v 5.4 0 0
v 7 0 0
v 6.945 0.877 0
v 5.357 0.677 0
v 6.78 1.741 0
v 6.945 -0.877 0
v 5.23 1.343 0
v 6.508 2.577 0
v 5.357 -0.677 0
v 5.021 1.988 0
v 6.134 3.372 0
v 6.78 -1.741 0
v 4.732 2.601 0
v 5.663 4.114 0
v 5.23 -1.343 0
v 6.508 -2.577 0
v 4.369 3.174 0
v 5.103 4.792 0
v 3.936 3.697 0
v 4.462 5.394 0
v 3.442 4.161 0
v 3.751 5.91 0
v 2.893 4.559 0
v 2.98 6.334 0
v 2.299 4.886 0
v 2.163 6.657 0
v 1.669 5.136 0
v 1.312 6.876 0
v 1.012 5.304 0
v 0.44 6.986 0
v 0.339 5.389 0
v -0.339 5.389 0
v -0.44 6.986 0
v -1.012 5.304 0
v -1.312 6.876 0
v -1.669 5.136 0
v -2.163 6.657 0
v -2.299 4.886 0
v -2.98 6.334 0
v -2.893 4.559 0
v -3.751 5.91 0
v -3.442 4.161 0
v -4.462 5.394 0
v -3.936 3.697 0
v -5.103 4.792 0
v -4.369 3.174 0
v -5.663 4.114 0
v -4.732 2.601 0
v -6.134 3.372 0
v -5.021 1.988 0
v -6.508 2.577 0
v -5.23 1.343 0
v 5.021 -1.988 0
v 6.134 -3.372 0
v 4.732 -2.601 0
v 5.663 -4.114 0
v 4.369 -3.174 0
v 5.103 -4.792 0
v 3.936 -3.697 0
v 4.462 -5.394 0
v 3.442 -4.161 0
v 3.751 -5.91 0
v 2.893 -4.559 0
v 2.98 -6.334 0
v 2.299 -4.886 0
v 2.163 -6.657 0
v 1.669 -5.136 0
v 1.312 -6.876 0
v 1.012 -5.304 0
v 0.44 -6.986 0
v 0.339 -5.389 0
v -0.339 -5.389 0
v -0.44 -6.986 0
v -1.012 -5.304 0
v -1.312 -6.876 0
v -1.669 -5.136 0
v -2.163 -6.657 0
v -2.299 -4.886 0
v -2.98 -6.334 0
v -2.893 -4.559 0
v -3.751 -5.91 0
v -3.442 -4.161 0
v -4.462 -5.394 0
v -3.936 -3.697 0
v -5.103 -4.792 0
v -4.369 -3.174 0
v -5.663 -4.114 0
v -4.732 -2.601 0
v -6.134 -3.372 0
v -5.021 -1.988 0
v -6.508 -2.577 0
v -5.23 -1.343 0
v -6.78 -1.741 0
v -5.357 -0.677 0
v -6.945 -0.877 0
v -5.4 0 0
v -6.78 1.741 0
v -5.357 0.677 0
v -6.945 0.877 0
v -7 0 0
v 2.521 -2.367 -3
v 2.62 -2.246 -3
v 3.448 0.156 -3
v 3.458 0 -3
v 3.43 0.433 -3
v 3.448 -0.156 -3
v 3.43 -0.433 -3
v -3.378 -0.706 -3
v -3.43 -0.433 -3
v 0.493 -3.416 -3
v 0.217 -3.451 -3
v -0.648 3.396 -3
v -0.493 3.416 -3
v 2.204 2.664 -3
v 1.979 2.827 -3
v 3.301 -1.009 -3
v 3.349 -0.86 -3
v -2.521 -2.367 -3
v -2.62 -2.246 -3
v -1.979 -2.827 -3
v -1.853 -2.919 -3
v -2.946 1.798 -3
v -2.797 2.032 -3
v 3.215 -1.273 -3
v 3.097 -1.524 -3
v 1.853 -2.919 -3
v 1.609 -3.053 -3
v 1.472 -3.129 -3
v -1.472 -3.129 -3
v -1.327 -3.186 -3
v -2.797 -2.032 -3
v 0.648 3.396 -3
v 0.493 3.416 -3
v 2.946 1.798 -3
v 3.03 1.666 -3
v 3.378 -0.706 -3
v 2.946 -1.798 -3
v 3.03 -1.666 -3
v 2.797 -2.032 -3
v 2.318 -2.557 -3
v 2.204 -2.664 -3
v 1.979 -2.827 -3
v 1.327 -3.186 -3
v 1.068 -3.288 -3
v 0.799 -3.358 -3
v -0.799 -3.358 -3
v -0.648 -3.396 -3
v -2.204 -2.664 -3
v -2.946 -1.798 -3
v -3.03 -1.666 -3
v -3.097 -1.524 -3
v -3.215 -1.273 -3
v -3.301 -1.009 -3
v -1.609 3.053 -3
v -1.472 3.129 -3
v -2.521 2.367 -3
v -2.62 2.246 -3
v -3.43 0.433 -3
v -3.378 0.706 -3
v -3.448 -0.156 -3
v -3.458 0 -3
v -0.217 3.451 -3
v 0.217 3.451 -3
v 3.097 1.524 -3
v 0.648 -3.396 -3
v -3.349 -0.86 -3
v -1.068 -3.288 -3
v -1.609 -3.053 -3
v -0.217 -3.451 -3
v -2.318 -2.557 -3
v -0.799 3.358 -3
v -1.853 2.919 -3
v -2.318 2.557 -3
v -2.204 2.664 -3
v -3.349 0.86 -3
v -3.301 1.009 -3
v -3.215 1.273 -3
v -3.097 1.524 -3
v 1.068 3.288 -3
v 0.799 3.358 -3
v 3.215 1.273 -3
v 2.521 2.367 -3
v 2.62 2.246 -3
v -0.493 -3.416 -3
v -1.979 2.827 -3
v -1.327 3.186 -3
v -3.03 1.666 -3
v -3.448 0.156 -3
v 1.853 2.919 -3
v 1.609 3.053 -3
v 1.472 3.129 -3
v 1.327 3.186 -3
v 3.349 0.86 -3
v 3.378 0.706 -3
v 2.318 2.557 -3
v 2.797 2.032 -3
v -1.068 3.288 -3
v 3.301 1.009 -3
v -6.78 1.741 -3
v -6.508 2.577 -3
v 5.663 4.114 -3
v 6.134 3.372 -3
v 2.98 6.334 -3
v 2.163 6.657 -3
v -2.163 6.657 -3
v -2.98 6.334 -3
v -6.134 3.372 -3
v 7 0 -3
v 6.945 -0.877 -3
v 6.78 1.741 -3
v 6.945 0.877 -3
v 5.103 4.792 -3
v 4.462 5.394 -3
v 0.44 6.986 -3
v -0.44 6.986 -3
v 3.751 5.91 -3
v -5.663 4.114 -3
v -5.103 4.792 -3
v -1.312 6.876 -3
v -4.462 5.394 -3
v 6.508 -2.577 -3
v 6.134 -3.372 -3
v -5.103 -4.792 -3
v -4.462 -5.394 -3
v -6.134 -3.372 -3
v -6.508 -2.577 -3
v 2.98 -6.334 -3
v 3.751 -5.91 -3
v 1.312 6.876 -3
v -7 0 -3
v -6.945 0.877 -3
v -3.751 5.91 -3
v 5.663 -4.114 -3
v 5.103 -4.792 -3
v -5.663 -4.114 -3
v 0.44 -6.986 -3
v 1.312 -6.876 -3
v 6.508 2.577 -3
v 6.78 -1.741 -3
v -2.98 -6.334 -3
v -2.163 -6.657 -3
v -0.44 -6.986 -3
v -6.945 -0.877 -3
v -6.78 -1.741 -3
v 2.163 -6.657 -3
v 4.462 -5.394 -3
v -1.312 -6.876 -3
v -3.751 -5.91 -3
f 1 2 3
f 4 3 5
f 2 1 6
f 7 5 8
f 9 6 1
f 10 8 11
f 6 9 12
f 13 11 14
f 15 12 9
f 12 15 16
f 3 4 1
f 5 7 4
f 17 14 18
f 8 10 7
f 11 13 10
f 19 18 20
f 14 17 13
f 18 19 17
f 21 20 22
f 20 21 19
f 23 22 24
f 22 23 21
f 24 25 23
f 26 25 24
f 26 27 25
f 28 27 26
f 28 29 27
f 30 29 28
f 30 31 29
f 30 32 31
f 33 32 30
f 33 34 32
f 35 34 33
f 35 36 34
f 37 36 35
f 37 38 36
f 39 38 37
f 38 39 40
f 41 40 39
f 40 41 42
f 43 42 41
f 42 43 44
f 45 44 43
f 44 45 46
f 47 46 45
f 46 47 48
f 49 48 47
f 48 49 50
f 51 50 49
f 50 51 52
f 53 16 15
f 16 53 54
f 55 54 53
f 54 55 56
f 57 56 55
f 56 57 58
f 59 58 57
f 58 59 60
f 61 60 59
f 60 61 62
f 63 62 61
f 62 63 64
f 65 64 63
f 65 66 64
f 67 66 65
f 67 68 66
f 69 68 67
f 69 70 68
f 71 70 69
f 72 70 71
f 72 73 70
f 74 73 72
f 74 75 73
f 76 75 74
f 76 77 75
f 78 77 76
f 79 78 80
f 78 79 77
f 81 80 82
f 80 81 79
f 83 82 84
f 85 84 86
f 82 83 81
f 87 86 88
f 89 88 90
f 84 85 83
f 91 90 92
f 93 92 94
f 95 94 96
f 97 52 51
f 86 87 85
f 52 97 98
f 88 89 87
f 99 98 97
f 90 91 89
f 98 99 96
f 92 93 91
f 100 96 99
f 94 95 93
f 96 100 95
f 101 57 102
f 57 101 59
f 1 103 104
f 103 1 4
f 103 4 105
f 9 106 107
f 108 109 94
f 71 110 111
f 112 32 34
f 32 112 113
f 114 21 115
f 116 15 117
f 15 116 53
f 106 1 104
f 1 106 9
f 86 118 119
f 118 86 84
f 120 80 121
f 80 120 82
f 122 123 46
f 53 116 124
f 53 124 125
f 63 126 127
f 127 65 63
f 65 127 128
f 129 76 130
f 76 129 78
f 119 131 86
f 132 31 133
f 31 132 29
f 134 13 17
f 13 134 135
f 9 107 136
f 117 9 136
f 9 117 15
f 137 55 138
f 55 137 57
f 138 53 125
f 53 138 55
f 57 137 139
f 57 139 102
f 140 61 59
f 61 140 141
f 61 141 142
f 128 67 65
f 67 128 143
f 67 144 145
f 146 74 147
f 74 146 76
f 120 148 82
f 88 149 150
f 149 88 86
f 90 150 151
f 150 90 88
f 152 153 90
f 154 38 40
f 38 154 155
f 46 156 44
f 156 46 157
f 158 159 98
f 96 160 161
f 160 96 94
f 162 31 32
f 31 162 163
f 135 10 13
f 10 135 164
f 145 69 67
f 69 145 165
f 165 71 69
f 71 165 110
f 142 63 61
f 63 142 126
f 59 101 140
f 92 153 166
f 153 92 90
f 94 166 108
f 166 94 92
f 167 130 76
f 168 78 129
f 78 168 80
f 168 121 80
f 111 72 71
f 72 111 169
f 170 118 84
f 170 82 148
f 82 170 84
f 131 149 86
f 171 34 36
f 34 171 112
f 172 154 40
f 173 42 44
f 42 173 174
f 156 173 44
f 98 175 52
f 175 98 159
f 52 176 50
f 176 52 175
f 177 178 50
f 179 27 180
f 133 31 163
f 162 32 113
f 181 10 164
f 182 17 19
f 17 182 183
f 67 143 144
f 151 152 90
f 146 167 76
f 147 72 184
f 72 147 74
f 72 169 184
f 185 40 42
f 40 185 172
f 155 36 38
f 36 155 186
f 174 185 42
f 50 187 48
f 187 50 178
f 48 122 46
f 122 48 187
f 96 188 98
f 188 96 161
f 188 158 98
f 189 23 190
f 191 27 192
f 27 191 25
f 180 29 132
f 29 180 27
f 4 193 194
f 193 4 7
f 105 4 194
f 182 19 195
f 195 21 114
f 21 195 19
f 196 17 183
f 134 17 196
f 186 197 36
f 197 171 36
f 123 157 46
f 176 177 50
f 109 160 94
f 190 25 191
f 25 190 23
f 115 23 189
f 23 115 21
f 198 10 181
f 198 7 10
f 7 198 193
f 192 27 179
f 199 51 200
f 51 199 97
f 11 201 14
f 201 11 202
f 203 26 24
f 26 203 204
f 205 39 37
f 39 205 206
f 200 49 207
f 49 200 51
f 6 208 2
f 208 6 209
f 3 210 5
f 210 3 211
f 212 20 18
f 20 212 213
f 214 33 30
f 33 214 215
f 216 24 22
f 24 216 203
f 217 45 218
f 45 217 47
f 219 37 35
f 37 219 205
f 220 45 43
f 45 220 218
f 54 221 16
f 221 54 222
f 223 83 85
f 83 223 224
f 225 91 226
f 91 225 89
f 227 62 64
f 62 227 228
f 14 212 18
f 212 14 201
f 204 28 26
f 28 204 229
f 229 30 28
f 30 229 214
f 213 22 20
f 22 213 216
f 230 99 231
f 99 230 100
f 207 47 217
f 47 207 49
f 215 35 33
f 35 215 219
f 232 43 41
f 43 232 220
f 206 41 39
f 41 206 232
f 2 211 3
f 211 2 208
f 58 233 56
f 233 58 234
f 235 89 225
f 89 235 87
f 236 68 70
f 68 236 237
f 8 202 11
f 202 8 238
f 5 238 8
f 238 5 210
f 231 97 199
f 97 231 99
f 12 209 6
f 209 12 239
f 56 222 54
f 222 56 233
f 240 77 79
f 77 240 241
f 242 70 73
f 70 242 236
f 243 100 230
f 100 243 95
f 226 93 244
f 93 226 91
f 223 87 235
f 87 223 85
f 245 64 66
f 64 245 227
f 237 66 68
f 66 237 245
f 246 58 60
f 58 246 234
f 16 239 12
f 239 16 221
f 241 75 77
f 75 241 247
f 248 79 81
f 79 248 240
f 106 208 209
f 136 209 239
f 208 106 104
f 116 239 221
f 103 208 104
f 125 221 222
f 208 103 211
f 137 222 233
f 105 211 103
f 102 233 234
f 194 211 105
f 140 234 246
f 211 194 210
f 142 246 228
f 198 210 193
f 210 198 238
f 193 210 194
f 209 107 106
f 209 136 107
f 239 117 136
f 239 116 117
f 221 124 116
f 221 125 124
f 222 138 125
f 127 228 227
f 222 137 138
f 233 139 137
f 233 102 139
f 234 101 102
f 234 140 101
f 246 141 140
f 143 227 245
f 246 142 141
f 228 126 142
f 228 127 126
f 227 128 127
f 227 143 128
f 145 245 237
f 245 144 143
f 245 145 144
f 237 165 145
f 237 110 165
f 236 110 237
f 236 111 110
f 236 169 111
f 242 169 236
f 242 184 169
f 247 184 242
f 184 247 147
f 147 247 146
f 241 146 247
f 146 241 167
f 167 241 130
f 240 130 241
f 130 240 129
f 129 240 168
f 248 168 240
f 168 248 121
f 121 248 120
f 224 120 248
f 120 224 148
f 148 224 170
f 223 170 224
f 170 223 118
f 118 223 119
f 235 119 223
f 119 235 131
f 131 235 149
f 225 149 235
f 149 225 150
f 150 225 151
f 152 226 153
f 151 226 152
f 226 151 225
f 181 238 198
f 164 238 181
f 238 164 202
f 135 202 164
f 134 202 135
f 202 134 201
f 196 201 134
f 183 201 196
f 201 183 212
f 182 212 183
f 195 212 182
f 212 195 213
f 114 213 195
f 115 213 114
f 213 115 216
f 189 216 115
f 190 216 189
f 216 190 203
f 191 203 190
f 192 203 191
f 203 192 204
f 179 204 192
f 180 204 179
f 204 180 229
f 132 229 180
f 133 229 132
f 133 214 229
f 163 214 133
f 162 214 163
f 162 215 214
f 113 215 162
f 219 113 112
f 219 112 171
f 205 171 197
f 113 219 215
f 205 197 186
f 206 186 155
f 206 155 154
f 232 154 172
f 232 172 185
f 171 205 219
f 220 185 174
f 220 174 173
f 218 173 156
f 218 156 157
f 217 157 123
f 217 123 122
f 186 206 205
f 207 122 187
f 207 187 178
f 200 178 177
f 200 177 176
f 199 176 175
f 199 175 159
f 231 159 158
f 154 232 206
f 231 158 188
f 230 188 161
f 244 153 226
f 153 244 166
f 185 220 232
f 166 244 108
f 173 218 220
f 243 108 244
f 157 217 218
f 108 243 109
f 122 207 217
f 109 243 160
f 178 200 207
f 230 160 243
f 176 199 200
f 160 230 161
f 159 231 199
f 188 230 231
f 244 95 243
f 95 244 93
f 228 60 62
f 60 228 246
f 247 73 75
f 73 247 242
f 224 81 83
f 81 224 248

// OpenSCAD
$fn = 50;


difference() {
	union() {
		translate(v = [0, 0, -3.0000000000]) {
			cylinder(h = 3, r = 7.0000000000);
		}
		cylinder(h = 0, r = 17.0000000000);
	}
	union() {
		translate(v = [0, 0, 0]) {
			rotate(a = [0, 0, 0]) {
				difference() {
					union() {
						#translate(v = [0, 0, -3.0000000000]) {
							cylinder(h = 3, r = 2.6000000000);
						}
						#translate(v = [0, 0, -3.9000000000]) {
							cylinder(h = 3.9000000000, r = 7.0000000000, r1 = 2.8750000000, r2 = 5.4000000000);
						}
						#translate(v = [0, 0, -3.0000000000]) {
							cylinder(h = 3, r = 2.8750000000);
						}
						#translate(v = [0, 0, -3.0000000000]) {
							cylinder(h = 3, r = 2.6000000000);
						}
					}
					union();
				}
			}
		}
	}
}
